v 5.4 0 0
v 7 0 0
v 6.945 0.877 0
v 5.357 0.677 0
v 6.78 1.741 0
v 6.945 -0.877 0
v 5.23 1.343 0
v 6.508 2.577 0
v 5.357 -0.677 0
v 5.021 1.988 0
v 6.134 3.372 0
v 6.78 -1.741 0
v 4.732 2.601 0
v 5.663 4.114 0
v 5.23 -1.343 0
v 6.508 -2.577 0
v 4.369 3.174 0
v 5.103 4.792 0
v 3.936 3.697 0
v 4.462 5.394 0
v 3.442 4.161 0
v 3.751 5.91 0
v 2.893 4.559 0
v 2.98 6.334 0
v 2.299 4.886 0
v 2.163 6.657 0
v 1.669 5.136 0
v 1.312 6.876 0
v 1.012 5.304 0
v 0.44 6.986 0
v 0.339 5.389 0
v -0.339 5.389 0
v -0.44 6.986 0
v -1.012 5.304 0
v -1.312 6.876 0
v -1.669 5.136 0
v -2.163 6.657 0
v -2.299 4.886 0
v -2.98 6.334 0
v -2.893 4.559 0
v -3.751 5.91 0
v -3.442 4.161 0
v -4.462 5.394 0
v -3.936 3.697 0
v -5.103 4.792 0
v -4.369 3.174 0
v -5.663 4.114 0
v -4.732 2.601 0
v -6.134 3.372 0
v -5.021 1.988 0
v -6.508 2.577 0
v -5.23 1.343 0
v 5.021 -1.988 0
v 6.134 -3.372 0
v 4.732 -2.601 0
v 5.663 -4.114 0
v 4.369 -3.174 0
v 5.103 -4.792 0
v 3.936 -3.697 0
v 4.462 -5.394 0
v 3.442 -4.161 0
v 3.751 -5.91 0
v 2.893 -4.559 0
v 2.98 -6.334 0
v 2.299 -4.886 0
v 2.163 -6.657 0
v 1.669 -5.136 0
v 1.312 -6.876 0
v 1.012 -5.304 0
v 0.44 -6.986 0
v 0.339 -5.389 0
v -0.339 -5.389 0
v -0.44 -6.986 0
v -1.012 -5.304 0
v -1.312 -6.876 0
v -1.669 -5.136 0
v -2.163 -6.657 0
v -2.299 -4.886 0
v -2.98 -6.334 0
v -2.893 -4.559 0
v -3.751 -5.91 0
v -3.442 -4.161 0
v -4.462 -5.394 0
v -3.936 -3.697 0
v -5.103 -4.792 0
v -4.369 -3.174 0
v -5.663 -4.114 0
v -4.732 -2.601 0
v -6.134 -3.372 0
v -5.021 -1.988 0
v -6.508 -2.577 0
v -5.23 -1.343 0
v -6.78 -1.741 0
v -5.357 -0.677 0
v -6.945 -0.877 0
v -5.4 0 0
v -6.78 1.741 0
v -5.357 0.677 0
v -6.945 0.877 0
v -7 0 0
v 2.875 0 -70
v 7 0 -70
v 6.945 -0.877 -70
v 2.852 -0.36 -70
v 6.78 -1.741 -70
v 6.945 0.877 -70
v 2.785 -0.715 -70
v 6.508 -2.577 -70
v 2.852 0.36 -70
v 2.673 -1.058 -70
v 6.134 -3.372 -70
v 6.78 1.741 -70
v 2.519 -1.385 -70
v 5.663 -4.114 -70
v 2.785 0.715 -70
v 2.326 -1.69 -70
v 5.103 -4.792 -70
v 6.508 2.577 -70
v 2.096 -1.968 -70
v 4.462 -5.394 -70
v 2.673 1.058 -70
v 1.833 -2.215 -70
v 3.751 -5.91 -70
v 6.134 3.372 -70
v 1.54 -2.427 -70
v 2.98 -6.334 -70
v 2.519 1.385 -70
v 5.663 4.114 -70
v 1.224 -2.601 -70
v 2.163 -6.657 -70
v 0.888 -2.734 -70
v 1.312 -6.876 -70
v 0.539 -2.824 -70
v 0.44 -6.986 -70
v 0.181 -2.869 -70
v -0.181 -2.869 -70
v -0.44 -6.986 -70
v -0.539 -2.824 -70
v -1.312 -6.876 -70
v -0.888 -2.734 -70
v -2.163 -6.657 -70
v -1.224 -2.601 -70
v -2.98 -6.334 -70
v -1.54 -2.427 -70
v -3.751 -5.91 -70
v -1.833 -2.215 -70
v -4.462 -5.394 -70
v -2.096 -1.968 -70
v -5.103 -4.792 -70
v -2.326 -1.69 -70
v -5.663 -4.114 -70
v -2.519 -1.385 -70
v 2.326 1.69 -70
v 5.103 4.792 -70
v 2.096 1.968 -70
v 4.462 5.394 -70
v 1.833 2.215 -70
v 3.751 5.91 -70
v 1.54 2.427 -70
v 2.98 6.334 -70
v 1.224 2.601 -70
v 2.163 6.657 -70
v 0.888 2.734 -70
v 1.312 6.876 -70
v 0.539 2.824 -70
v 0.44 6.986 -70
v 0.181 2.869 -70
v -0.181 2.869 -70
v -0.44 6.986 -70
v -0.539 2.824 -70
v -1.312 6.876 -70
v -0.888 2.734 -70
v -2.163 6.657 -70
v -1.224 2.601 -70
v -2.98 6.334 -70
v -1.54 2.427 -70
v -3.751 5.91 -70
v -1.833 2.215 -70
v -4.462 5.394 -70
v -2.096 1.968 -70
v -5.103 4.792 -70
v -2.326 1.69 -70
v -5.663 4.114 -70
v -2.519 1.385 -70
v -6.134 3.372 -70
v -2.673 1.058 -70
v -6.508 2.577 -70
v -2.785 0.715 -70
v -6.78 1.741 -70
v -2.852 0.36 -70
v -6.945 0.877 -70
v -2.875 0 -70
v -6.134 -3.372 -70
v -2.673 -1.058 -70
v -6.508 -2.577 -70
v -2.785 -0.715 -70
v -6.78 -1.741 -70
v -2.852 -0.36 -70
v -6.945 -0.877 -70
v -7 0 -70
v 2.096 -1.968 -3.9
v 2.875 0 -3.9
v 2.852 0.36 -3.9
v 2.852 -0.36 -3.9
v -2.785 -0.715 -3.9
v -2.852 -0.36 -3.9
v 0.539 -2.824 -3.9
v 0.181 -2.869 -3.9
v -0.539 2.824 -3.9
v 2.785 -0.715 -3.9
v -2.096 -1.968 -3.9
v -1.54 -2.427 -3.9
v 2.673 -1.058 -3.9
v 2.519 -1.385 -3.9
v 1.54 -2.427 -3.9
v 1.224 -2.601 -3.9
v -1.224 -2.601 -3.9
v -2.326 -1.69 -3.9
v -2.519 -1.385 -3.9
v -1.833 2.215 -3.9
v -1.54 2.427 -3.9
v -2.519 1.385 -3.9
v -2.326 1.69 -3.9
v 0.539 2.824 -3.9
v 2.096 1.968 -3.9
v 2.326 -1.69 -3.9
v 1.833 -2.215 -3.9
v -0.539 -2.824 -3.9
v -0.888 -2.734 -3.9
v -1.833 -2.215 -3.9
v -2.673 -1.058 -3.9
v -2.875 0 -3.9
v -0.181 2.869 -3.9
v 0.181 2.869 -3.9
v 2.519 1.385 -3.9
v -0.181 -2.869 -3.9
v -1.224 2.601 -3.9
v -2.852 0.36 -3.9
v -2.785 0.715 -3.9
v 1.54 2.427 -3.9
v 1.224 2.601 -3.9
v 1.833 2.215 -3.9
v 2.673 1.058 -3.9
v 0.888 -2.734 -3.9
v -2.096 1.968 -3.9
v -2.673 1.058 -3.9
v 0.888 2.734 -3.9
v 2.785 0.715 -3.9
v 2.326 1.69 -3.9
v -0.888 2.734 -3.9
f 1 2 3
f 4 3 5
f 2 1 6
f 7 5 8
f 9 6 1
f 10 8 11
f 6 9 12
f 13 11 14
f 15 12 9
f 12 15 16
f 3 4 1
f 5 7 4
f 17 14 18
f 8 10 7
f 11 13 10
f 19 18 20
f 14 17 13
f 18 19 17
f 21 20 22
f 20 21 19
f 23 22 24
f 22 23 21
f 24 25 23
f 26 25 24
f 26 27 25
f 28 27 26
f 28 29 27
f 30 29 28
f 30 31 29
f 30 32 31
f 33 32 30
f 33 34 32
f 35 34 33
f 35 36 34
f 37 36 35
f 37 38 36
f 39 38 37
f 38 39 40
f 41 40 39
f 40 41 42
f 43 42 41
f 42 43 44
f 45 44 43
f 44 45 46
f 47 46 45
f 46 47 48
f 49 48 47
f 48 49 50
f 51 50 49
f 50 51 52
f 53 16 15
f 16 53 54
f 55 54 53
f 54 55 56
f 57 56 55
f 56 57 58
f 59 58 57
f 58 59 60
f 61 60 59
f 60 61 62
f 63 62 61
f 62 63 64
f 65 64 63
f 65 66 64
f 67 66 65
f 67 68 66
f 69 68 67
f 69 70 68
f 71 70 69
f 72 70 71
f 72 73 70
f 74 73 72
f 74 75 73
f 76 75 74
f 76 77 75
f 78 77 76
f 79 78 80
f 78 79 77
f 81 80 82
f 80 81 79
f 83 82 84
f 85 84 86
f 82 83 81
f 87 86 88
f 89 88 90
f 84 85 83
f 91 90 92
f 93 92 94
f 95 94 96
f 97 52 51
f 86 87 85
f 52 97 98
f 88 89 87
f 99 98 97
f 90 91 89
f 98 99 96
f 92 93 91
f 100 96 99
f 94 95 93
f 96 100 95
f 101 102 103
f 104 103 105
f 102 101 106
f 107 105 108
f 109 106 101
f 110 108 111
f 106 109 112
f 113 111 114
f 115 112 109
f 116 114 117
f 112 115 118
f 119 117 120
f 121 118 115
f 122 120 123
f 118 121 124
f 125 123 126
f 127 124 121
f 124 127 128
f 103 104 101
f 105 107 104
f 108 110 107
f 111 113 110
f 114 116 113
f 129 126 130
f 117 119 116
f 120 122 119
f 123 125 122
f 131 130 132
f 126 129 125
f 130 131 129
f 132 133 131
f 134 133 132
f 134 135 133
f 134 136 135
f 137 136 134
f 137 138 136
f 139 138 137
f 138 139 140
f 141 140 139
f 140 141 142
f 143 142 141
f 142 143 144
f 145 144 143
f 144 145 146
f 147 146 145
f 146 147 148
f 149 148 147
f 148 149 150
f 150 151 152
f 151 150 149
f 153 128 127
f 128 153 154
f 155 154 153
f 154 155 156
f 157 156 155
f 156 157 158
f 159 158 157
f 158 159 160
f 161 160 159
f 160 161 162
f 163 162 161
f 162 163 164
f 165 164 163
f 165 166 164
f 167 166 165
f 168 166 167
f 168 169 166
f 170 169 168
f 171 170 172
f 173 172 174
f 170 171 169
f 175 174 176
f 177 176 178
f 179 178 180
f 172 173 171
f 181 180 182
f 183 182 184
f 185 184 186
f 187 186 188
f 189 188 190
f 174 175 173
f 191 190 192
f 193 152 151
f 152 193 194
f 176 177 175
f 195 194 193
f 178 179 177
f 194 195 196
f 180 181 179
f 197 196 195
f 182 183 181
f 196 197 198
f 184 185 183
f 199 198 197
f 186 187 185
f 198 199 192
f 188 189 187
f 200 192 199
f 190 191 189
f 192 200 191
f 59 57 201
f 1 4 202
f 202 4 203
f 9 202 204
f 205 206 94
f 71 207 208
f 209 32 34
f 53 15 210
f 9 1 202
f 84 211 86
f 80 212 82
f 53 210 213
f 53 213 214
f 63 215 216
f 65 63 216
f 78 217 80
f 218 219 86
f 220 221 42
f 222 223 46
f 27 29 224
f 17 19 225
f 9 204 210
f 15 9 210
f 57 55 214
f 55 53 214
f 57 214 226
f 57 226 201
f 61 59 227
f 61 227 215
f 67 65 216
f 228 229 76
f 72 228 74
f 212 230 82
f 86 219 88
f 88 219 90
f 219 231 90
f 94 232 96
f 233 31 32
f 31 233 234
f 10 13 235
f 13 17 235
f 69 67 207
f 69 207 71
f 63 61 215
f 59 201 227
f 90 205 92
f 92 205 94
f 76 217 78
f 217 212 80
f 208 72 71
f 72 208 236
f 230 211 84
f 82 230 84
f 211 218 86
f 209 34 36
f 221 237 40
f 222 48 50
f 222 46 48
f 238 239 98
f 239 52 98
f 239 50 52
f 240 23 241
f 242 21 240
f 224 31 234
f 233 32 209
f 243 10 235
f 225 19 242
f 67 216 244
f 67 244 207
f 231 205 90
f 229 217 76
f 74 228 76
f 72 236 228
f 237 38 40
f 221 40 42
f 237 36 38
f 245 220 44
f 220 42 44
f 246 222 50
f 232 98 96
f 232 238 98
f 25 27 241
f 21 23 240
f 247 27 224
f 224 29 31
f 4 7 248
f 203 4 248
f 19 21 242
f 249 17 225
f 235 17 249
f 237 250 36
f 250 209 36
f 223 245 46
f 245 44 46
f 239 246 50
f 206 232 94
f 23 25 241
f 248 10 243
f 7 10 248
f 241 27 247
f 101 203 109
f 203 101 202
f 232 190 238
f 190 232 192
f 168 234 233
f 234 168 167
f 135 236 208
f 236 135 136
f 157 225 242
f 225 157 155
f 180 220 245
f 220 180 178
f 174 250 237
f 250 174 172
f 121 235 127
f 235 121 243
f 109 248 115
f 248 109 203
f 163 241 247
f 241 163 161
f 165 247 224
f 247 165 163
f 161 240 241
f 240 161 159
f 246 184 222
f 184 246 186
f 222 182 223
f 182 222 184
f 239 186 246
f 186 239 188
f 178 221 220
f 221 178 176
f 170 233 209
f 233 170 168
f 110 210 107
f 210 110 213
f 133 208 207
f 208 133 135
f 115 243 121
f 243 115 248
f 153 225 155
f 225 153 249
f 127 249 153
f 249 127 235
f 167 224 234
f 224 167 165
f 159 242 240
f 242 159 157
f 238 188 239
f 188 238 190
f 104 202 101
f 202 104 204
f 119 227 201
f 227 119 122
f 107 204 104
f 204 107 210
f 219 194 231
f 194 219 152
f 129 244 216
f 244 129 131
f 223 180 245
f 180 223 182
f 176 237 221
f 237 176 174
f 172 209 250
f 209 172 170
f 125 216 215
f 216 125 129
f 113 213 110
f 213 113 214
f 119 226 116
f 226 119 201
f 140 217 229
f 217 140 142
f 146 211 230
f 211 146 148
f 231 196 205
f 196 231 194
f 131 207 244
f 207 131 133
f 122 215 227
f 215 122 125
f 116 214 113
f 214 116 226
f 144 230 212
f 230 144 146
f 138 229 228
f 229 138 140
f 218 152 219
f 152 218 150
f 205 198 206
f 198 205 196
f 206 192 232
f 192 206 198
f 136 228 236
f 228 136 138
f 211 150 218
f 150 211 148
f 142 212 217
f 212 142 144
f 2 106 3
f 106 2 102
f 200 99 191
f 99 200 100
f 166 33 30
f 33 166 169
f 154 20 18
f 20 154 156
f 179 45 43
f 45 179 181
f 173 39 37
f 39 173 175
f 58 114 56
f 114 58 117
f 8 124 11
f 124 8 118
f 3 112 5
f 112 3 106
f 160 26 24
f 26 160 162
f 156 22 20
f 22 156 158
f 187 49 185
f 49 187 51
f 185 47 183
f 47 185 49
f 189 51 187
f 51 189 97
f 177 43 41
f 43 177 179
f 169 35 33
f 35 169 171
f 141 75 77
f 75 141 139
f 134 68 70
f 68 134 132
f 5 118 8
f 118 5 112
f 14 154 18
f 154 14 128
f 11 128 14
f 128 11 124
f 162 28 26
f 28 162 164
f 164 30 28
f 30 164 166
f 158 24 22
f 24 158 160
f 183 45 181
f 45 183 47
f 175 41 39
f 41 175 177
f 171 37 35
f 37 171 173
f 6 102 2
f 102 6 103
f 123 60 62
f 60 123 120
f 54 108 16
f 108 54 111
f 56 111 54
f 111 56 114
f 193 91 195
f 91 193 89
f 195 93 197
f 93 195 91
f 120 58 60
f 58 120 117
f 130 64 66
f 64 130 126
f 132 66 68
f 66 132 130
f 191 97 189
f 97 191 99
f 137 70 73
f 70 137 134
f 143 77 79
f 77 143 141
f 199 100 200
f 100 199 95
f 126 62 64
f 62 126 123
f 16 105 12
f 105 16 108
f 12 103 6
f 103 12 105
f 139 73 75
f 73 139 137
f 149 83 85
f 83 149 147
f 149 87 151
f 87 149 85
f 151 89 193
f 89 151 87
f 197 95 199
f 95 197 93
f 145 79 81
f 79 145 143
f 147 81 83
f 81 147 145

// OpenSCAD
$fn = 50;


difference() {
	union() {
		translate(v = [0, 0, -70.0000000000]) {
			cylinder(h = 70, r = 7.0000000000);
		}
	}
	union() {
		translate(v = [0, 0, 0]) {
			rotate(a = [0, 0, 0]) {
				difference() {
					union() {
						#translate(v = [0, 0, -70.0000000000]) {
							cylinder(h = 70, r = 2.6000000000);
						}
						#translate(v = [0, 0, -3.9000000000]) {
							cylinder(h = 3.9000000000, r = 7.0000000000, r1 = 2.8750000000, r2 = 5.4000000000);
						}
						#translate(v = [0, 0, -70.0000000000]) {
							cylinder(h = 70, r = 2.8750000000);
						}
						#translate(v = [0, 0, -70.0000000000]) {
							cylinder(h = 70, r = 2.6000000000);
						}
					}
					union();
				}
			}
		}
	}
}
